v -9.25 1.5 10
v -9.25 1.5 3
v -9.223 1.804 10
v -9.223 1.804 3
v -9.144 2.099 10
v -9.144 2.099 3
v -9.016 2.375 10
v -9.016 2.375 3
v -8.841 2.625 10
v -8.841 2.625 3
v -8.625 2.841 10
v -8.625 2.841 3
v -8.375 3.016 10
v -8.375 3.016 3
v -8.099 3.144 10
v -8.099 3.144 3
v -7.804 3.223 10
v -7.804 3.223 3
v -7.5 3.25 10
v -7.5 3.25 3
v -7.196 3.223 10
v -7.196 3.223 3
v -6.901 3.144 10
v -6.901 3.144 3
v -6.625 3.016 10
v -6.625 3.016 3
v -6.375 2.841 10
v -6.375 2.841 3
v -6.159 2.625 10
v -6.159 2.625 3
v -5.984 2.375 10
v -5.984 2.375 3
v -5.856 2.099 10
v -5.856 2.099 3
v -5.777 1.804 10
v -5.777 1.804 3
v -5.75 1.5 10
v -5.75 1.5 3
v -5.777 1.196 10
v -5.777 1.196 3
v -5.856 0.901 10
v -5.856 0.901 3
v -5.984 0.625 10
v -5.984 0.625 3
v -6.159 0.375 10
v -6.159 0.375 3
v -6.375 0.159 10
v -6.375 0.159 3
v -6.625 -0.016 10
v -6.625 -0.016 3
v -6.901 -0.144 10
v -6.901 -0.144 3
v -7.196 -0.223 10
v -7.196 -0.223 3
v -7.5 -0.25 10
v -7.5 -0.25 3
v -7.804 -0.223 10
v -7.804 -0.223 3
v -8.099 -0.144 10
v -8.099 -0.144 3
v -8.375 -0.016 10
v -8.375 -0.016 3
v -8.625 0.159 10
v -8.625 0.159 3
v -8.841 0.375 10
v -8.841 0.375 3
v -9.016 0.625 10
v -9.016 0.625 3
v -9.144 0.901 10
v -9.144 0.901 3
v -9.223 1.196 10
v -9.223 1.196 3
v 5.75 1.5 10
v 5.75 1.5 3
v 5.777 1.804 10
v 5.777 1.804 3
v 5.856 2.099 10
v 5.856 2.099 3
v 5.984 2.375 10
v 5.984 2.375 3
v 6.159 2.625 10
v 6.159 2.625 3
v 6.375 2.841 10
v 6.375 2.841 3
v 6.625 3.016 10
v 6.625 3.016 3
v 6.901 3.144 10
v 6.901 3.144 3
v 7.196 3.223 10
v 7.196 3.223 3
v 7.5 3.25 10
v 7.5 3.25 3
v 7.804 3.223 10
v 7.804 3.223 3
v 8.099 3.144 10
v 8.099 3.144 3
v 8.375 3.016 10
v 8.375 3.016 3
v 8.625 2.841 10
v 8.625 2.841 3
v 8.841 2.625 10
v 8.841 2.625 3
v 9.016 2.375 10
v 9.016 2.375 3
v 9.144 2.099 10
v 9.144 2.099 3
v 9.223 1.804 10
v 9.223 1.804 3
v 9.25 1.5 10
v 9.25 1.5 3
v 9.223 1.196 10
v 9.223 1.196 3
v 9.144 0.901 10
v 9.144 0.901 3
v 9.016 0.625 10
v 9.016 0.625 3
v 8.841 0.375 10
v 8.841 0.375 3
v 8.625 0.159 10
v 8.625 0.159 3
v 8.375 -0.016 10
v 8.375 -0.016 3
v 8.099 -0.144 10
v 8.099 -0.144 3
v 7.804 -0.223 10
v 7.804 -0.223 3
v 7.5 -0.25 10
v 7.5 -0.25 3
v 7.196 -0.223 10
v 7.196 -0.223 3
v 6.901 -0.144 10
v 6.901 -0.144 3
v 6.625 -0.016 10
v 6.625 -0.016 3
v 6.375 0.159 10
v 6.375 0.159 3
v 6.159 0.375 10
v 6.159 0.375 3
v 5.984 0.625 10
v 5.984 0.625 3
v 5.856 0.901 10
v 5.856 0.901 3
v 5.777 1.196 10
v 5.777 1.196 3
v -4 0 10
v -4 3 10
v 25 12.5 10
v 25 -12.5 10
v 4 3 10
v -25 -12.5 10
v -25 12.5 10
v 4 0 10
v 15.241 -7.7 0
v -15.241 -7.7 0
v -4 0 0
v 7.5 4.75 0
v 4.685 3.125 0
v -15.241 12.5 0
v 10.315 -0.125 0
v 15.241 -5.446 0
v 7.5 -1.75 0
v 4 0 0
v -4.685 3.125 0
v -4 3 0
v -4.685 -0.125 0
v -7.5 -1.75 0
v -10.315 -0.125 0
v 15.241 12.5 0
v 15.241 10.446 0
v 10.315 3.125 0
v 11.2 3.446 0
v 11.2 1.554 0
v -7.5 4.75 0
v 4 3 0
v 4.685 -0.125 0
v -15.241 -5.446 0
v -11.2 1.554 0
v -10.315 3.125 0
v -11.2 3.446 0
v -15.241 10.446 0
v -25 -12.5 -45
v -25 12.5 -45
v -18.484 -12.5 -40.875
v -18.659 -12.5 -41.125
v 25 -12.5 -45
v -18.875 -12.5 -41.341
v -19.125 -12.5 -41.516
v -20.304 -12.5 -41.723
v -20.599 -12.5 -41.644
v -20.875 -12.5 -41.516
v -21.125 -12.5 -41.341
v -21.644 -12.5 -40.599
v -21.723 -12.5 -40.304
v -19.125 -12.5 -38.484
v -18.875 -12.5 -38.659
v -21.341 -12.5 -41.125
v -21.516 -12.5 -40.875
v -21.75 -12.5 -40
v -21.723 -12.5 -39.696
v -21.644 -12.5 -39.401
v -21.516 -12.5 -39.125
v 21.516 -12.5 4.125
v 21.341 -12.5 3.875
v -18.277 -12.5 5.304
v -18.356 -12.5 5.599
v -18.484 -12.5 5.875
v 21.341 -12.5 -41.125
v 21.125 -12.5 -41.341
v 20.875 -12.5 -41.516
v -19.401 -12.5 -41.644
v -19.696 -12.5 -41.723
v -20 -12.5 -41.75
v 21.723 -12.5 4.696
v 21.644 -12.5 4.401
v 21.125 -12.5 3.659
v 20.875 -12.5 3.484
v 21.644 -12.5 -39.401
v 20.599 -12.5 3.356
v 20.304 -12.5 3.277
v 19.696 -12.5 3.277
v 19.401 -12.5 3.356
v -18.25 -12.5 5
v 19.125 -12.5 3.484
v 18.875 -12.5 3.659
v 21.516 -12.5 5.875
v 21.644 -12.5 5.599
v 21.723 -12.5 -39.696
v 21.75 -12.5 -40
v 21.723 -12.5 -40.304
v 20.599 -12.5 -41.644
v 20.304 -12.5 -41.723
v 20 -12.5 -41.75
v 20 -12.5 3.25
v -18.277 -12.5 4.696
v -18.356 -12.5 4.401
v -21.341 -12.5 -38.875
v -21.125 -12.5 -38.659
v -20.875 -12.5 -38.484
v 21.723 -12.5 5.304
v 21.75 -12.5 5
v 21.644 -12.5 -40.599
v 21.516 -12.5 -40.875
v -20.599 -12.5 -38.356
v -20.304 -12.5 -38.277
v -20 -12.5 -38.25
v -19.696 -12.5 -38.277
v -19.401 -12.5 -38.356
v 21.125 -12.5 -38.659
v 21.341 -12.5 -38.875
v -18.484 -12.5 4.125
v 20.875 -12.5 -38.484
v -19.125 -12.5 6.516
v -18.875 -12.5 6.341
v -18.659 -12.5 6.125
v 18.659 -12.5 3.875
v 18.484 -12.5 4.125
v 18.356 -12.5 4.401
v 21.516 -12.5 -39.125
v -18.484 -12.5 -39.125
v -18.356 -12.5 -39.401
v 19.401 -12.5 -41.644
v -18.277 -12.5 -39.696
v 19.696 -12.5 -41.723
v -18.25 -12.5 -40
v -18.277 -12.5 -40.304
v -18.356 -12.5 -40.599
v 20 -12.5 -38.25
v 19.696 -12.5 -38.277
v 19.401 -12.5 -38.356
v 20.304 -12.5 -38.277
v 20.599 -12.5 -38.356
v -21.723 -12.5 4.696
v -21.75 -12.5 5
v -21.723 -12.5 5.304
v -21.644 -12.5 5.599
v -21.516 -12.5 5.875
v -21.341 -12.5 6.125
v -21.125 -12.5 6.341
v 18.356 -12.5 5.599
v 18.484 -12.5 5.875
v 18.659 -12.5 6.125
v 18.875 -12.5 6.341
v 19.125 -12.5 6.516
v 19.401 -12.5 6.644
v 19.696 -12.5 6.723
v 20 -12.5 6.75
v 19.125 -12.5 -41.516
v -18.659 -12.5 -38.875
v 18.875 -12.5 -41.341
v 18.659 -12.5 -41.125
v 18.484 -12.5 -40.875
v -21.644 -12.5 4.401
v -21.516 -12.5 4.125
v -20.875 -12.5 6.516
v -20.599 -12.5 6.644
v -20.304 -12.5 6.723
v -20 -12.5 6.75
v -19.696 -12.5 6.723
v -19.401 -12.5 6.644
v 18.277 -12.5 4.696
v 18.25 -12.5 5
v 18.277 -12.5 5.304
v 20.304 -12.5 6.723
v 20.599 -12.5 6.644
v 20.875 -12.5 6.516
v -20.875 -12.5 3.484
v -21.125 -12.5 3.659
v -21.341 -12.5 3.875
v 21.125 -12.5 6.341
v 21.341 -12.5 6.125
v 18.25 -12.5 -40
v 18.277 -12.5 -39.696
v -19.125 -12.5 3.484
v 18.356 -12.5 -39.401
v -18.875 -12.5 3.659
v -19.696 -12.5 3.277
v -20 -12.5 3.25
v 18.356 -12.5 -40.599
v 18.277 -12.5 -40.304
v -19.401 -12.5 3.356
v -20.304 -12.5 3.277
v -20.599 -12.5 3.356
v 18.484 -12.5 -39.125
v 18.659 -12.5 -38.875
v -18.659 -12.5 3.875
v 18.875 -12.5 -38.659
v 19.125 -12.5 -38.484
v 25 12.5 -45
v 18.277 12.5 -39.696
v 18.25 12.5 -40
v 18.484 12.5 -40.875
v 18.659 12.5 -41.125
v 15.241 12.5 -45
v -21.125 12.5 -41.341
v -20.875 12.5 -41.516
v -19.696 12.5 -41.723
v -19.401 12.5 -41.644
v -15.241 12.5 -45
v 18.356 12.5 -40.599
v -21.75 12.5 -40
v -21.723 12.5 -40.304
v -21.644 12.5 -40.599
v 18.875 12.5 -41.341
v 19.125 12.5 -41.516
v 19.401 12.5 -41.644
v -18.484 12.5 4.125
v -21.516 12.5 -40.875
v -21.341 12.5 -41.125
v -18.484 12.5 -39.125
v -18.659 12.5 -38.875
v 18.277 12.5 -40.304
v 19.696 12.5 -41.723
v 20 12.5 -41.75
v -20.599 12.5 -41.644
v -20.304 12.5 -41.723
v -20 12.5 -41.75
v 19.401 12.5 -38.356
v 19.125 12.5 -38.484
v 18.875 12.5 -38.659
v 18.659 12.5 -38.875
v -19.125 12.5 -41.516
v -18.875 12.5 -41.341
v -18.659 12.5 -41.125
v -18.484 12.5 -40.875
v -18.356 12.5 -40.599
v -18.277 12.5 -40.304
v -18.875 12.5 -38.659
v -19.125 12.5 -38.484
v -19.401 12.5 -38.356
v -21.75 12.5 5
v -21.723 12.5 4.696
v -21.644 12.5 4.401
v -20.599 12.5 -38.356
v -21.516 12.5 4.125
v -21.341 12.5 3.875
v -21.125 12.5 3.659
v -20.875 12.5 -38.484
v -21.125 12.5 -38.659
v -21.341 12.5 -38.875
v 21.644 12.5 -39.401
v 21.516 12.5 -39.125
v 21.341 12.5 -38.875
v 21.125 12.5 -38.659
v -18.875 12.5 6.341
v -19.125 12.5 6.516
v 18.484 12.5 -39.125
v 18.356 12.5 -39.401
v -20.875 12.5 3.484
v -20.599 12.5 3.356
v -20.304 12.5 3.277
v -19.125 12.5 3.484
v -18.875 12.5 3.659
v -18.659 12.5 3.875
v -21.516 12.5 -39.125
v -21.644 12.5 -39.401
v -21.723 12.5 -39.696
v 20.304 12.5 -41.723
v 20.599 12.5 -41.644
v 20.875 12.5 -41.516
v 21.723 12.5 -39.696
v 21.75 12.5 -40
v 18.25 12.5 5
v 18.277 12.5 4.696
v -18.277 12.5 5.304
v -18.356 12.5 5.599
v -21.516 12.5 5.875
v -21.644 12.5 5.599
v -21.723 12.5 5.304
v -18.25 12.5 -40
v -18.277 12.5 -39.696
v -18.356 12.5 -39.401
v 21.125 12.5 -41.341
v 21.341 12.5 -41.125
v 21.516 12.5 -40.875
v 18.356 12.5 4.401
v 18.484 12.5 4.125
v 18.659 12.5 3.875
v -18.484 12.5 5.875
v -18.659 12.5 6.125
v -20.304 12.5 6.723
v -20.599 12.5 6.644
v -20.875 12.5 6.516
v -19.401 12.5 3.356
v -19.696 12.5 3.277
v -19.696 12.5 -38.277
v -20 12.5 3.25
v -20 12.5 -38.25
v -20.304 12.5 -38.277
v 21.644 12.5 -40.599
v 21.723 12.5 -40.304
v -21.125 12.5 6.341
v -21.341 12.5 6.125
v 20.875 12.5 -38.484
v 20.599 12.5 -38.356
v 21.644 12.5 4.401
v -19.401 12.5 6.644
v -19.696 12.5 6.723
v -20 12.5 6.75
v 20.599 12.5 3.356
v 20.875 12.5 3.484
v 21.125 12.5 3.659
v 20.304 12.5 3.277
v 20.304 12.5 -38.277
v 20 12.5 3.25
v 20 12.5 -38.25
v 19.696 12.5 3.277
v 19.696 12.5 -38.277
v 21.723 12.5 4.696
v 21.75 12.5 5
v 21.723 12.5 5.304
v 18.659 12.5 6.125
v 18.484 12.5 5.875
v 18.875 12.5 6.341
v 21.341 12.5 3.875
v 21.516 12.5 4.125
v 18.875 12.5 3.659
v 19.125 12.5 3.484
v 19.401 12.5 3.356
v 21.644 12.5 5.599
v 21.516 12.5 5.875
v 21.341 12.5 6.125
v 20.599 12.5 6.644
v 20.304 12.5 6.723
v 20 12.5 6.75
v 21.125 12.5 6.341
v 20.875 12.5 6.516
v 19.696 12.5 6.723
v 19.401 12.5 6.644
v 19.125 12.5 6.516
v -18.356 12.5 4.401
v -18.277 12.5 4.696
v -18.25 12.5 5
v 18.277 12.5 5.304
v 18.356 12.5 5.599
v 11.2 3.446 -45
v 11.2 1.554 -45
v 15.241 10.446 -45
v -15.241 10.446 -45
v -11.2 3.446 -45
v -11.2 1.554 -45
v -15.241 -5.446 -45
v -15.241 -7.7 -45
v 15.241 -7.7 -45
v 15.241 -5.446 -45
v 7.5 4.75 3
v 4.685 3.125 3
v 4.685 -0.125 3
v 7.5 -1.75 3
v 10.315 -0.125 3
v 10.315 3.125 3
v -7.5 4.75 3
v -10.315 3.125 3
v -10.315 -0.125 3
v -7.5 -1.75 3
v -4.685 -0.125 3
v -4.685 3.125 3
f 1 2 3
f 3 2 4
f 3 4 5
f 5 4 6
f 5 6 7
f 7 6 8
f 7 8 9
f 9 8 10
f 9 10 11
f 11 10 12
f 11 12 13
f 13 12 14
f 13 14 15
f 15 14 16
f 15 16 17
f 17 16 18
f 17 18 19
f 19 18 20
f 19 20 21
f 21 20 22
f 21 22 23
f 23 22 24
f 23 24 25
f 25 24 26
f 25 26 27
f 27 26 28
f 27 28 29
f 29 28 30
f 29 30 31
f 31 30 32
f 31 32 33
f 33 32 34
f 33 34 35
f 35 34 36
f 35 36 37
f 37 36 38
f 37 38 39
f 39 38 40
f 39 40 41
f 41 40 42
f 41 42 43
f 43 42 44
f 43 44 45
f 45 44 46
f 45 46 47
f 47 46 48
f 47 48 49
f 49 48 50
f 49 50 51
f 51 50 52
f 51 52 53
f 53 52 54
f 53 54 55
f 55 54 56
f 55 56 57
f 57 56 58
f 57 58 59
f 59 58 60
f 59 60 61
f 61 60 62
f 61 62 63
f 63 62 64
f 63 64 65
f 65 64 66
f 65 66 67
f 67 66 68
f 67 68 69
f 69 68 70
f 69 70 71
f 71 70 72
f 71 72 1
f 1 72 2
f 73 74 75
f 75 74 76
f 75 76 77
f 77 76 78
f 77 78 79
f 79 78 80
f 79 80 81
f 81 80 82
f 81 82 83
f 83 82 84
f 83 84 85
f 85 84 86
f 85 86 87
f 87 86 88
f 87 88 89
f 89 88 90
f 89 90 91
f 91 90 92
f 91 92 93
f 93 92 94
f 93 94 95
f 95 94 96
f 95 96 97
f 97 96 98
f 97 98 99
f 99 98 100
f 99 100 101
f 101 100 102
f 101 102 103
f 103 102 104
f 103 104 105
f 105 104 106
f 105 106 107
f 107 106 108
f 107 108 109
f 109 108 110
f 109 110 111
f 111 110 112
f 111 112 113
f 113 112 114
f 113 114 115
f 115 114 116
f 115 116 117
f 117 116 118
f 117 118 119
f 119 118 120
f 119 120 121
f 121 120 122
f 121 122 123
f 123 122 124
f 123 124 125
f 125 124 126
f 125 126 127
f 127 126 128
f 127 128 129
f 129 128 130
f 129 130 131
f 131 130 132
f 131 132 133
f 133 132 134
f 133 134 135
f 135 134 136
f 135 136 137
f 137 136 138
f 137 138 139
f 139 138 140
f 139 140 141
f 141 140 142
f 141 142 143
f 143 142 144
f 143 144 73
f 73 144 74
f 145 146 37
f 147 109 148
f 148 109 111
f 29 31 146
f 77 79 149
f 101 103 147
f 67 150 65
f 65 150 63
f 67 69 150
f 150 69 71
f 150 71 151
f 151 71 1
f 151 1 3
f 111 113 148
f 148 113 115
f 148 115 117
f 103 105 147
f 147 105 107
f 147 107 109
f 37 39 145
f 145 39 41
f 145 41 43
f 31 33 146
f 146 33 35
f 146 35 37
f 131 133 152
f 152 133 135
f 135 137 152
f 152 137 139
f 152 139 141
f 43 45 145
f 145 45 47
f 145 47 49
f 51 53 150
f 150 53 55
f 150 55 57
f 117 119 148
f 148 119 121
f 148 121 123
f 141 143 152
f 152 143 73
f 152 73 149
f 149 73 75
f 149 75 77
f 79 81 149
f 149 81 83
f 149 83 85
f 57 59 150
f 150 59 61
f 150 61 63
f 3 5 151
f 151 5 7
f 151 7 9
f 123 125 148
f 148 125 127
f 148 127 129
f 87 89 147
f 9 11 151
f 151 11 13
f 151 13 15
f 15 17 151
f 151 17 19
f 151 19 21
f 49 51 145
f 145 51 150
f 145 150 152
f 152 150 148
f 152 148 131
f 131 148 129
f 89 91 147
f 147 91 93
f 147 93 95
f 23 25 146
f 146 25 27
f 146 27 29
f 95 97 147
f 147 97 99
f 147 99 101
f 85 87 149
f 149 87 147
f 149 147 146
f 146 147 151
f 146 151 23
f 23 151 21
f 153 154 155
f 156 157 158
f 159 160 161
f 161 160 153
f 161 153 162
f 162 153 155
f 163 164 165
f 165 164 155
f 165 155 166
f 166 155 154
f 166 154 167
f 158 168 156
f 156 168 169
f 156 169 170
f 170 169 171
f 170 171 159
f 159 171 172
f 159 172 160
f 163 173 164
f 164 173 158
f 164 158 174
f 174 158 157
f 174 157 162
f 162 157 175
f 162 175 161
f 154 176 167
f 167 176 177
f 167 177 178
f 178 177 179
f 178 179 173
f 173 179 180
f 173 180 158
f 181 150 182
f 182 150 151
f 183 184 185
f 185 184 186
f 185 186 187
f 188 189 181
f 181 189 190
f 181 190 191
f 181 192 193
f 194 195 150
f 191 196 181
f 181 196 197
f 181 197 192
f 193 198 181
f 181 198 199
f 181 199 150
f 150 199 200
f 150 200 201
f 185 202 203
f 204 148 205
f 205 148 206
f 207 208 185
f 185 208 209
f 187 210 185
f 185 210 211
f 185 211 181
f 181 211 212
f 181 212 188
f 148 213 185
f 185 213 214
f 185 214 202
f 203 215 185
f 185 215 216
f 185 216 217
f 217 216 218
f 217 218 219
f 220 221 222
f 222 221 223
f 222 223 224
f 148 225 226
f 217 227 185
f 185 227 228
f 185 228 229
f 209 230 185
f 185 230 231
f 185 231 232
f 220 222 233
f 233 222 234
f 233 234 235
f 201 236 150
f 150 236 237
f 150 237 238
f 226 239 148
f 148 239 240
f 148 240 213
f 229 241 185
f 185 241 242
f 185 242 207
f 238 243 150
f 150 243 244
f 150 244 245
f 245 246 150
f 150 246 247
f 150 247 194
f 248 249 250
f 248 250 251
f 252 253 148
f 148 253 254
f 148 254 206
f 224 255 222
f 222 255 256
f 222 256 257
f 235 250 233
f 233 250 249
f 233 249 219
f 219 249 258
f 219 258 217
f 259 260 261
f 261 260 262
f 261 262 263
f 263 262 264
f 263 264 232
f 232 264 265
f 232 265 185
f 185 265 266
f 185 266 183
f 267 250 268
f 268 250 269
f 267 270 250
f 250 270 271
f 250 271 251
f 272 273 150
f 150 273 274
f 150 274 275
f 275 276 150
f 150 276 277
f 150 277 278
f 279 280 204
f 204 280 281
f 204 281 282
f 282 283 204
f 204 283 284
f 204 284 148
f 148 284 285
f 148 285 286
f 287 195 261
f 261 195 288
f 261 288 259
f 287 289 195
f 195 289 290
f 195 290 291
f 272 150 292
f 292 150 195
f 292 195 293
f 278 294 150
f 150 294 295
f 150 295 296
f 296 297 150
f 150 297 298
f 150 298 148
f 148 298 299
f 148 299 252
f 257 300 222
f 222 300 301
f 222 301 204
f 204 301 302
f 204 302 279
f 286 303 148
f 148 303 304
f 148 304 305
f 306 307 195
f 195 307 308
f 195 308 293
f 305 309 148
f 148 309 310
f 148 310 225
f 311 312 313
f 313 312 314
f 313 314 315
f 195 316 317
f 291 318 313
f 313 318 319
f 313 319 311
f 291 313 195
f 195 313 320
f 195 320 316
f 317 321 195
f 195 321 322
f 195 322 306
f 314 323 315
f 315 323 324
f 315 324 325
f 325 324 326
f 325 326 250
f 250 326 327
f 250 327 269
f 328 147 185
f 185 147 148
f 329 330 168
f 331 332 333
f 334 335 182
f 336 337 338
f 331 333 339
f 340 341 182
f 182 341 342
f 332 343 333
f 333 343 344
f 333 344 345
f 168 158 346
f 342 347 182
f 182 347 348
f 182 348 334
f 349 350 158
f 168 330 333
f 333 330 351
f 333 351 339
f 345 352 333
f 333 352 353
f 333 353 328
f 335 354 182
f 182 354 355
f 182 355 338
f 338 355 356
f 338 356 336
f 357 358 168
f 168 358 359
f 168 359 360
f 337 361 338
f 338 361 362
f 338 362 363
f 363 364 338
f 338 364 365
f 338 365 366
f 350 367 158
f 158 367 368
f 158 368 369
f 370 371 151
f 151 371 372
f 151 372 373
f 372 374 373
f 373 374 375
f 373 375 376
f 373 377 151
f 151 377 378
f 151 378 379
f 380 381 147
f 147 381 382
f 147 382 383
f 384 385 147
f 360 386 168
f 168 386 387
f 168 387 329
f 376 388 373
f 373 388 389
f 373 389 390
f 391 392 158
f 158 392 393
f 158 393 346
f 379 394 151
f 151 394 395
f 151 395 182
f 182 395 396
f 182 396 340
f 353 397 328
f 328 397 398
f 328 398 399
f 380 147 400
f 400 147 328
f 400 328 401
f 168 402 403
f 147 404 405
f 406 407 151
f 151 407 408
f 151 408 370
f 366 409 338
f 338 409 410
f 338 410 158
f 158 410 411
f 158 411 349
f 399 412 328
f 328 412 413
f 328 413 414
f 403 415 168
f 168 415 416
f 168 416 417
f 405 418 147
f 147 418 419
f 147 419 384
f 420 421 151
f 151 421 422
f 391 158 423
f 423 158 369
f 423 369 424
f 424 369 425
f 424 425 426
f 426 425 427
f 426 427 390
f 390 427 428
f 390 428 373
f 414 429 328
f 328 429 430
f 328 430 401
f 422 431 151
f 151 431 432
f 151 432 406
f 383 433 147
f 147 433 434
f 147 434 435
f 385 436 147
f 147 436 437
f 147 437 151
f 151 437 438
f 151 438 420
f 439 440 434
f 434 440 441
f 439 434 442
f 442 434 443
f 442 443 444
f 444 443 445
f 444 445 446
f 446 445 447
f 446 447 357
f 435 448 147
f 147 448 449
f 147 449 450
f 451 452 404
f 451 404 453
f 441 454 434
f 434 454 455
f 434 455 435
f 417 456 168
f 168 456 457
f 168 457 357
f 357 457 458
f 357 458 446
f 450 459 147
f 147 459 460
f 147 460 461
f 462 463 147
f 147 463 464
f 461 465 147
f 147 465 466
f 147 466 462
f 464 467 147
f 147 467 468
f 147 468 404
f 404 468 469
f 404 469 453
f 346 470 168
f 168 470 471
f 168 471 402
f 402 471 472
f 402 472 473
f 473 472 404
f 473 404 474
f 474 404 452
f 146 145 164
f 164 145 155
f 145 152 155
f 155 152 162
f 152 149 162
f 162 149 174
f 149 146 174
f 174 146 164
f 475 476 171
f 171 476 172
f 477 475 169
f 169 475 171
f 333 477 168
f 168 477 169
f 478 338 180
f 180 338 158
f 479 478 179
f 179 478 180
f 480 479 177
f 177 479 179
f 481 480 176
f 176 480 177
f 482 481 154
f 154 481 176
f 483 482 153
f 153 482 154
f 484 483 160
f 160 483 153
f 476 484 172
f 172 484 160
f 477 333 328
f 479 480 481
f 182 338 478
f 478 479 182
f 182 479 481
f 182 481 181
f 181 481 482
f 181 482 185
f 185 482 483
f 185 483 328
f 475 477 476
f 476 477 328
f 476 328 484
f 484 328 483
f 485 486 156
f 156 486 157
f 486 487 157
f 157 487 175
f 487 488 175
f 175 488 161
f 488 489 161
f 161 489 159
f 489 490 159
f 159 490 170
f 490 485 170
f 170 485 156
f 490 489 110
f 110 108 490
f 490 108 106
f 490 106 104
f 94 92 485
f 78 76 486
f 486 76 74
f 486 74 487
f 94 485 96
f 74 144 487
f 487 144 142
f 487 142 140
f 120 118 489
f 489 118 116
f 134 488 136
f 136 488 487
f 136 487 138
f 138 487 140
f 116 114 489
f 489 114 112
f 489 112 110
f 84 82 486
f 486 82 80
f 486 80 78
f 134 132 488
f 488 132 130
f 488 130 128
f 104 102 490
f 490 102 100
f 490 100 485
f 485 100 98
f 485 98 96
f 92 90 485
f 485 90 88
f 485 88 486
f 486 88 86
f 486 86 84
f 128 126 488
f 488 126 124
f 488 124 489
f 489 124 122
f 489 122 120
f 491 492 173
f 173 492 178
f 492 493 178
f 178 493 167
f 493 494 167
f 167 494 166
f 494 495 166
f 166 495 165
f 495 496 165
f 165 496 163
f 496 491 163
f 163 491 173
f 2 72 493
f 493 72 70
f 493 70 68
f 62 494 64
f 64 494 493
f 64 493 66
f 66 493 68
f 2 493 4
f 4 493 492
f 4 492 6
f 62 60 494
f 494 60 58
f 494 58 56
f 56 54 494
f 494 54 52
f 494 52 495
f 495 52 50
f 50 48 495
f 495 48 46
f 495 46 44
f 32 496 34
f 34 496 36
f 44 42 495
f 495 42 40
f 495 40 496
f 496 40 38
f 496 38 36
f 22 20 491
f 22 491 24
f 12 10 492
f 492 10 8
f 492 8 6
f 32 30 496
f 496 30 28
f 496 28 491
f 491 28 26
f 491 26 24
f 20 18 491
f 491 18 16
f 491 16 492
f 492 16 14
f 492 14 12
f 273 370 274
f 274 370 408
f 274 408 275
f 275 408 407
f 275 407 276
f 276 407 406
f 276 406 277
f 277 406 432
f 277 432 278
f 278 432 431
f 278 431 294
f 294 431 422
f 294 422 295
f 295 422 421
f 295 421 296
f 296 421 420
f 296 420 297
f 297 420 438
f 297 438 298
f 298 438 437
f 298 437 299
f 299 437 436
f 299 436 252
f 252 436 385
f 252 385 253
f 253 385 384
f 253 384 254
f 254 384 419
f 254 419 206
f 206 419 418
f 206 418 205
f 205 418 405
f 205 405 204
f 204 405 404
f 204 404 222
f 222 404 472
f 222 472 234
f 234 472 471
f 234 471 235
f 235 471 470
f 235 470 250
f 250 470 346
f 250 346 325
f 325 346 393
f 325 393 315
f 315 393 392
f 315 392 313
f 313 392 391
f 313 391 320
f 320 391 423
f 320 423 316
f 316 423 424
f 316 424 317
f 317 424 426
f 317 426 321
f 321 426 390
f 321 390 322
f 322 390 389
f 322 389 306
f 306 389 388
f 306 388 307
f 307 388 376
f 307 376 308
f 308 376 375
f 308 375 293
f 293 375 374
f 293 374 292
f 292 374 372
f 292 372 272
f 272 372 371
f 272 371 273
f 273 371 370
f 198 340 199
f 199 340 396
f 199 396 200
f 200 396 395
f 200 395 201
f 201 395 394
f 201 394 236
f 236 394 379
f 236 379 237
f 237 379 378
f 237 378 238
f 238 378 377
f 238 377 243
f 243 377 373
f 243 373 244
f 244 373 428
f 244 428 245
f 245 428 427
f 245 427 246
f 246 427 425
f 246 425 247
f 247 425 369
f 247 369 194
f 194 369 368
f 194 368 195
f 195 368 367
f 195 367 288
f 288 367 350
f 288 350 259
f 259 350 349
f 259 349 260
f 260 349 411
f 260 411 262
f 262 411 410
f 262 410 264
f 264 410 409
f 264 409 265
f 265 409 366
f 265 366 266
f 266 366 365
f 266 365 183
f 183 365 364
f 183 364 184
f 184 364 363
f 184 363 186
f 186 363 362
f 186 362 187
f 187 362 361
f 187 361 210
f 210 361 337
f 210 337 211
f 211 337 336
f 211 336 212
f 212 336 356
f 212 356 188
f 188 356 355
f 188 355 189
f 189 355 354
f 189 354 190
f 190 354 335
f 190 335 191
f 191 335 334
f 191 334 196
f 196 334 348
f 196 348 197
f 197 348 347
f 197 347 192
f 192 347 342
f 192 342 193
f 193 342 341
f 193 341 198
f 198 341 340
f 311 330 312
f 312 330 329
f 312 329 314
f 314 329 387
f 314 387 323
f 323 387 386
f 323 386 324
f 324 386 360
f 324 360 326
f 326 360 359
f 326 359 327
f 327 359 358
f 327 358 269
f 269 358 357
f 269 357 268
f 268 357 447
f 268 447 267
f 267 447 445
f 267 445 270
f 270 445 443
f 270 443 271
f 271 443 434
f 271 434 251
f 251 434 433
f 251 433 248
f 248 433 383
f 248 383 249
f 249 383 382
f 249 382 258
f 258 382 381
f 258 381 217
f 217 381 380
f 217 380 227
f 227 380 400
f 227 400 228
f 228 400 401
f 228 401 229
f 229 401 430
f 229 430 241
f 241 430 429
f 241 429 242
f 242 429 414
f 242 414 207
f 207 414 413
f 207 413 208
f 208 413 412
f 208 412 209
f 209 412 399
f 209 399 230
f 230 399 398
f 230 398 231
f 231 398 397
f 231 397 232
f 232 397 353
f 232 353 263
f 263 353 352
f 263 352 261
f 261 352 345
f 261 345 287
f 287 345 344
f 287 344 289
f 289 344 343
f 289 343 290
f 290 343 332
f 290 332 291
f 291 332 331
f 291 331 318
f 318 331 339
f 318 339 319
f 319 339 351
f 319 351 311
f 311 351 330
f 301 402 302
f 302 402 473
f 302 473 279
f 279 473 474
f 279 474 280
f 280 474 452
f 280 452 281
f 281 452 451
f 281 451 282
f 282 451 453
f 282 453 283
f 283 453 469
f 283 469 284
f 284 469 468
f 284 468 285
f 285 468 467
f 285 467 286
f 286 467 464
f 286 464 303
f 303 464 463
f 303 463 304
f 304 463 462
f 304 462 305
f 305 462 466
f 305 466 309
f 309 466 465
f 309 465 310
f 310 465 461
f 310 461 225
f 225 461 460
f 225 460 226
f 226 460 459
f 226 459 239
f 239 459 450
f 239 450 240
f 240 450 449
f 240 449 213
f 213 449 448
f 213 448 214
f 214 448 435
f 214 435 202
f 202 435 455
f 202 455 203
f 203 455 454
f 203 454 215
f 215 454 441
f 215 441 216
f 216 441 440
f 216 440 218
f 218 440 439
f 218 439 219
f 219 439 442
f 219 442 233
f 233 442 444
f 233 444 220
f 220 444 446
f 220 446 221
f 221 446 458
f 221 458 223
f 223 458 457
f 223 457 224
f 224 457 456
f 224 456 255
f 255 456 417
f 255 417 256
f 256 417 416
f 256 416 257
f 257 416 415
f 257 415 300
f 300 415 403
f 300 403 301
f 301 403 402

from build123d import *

# Parameters (mm, degrees)
SCHIZZO1_W                   = 50
SCHIZZO1_H                   = 25
SCHIZZO1_R                   = 1.75
SCHIZZO1_W_2                 = 8
SCHIZZO1_H_2                 = 3
ESTRUSIONE_ESTRUSIONE1_DEPTH = 10
ESTRUSIONE_ESTRUSIONE2_DEPTH = 45
TAGLIO_ESTRUSIONE1_DEPTH     = 3
SCHIZZO4_R                   = 1.75
TAGLIO_ESTRUSIONE2_DEPTH     = 58.227615711


with BuildPart() as part:
    # Schizzo1 → Estrusione-Estrusione1 (new body)
    with BuildSketch(Plane.XY):
        Rectangle(SCHIZZO1_W, SCHIZZO1_H)
        with Locations((-7.5, 1.5)):
            Circle(SCHIZZO1_R, mode=Mode.SUBTRACT)
        with Locations((7.5, 1.5)):
            Circle(SCHIZZO1_R, mode=Mode.SUBTRACT)
        with Locations((0, 1.5)):
            Rectangle(SCHIZZO1_W_2, SCHIZZO1_H_2, mode=Mode.SUBTRACT)
    extrude(amount=ESTRUSIONE_ESTRUSIONE1_DEPTH)

    # Schizzo2 → Estrusione-Estrusione2 (add)
    with BuildSketch(Plane(origin=(0, 0, 0), x_dir=(-1, 0, 0), z_dir=(0, 0, -1))):
        Polygon((-15.241451884, 12.5), (-25, 12.5), (-25, -12.5), (25, -12.5), (25, 12.5), (15.241451884, 12.5), (15.241451884, 10.446410162), (11.2, 3.446410162), (11.2, 1.553589838), (15.241451884, -5.446410162), (15.241451884, -7.7), (0, -7.7), (-15.241451884, -7.7), (-15.241451884, -5.446410162), (-11.2, 1.553589838), (-11.2, 3.446410162), (-15.241451884, 10.446410162), align=None)
    extrude(amount=ESTRUSIONE_ESTRUSIONE2_DEPTH)

    # Schizzo3 → Taglio-Estrusione1 (cut)
    with BuildSketch(Plane(origin=(0, 0, 0), x_dir=(-1, 0, 0), z_dir=(0, 0, -1))):
        Polygon((-7.5, 4.75), (-10.314582562, 3.125), (-10.314582562, -0.125), (-7.5, -1.75), (-4.685417438, -0.125), (-4.685417438, 3.125), align=None)
        Polygon((7.5, 4.75), (4.685417438, 3.125), (4.685417438, -0.125), (7.5, -1.75), (10.314582562, -0.125), (10.314582562, 3.125), align=None)
    extrude(amount=-TAGLIO_ESTRUSIONE1_DEPTH, mode=Mode.SUBTRACT)

    # Schizzo4 → Taglio-Estrusione2 (cut, through all)
    with BuildSketch(Plane(origin=(0, 12.5, 0), x_dir=(1, 0, 0), z_dir=(0, 1, 0))):
        with Locations(Location((-20, -5, 0), (0, 0, 180))):
            Circle(SCHIZZO4_R)
        with Locations(Location((-20, 40, 0), (0, 0, 180))):
            Circle(SCHIZZO4_R)
        with Locations(Location((20, 40, 0), (0, 0, 180))):
            Circle(SCHIZZO4_R)
        with Locations(Location((20, -5, 0), (0, 0, 180))):
            Circle(SCHIZZO4_R)
    extrude(amount=-TAGLIO_ESTRUSIONE2_DEPTH, mode=Mode.SUBTRACT)


solid = part.part
